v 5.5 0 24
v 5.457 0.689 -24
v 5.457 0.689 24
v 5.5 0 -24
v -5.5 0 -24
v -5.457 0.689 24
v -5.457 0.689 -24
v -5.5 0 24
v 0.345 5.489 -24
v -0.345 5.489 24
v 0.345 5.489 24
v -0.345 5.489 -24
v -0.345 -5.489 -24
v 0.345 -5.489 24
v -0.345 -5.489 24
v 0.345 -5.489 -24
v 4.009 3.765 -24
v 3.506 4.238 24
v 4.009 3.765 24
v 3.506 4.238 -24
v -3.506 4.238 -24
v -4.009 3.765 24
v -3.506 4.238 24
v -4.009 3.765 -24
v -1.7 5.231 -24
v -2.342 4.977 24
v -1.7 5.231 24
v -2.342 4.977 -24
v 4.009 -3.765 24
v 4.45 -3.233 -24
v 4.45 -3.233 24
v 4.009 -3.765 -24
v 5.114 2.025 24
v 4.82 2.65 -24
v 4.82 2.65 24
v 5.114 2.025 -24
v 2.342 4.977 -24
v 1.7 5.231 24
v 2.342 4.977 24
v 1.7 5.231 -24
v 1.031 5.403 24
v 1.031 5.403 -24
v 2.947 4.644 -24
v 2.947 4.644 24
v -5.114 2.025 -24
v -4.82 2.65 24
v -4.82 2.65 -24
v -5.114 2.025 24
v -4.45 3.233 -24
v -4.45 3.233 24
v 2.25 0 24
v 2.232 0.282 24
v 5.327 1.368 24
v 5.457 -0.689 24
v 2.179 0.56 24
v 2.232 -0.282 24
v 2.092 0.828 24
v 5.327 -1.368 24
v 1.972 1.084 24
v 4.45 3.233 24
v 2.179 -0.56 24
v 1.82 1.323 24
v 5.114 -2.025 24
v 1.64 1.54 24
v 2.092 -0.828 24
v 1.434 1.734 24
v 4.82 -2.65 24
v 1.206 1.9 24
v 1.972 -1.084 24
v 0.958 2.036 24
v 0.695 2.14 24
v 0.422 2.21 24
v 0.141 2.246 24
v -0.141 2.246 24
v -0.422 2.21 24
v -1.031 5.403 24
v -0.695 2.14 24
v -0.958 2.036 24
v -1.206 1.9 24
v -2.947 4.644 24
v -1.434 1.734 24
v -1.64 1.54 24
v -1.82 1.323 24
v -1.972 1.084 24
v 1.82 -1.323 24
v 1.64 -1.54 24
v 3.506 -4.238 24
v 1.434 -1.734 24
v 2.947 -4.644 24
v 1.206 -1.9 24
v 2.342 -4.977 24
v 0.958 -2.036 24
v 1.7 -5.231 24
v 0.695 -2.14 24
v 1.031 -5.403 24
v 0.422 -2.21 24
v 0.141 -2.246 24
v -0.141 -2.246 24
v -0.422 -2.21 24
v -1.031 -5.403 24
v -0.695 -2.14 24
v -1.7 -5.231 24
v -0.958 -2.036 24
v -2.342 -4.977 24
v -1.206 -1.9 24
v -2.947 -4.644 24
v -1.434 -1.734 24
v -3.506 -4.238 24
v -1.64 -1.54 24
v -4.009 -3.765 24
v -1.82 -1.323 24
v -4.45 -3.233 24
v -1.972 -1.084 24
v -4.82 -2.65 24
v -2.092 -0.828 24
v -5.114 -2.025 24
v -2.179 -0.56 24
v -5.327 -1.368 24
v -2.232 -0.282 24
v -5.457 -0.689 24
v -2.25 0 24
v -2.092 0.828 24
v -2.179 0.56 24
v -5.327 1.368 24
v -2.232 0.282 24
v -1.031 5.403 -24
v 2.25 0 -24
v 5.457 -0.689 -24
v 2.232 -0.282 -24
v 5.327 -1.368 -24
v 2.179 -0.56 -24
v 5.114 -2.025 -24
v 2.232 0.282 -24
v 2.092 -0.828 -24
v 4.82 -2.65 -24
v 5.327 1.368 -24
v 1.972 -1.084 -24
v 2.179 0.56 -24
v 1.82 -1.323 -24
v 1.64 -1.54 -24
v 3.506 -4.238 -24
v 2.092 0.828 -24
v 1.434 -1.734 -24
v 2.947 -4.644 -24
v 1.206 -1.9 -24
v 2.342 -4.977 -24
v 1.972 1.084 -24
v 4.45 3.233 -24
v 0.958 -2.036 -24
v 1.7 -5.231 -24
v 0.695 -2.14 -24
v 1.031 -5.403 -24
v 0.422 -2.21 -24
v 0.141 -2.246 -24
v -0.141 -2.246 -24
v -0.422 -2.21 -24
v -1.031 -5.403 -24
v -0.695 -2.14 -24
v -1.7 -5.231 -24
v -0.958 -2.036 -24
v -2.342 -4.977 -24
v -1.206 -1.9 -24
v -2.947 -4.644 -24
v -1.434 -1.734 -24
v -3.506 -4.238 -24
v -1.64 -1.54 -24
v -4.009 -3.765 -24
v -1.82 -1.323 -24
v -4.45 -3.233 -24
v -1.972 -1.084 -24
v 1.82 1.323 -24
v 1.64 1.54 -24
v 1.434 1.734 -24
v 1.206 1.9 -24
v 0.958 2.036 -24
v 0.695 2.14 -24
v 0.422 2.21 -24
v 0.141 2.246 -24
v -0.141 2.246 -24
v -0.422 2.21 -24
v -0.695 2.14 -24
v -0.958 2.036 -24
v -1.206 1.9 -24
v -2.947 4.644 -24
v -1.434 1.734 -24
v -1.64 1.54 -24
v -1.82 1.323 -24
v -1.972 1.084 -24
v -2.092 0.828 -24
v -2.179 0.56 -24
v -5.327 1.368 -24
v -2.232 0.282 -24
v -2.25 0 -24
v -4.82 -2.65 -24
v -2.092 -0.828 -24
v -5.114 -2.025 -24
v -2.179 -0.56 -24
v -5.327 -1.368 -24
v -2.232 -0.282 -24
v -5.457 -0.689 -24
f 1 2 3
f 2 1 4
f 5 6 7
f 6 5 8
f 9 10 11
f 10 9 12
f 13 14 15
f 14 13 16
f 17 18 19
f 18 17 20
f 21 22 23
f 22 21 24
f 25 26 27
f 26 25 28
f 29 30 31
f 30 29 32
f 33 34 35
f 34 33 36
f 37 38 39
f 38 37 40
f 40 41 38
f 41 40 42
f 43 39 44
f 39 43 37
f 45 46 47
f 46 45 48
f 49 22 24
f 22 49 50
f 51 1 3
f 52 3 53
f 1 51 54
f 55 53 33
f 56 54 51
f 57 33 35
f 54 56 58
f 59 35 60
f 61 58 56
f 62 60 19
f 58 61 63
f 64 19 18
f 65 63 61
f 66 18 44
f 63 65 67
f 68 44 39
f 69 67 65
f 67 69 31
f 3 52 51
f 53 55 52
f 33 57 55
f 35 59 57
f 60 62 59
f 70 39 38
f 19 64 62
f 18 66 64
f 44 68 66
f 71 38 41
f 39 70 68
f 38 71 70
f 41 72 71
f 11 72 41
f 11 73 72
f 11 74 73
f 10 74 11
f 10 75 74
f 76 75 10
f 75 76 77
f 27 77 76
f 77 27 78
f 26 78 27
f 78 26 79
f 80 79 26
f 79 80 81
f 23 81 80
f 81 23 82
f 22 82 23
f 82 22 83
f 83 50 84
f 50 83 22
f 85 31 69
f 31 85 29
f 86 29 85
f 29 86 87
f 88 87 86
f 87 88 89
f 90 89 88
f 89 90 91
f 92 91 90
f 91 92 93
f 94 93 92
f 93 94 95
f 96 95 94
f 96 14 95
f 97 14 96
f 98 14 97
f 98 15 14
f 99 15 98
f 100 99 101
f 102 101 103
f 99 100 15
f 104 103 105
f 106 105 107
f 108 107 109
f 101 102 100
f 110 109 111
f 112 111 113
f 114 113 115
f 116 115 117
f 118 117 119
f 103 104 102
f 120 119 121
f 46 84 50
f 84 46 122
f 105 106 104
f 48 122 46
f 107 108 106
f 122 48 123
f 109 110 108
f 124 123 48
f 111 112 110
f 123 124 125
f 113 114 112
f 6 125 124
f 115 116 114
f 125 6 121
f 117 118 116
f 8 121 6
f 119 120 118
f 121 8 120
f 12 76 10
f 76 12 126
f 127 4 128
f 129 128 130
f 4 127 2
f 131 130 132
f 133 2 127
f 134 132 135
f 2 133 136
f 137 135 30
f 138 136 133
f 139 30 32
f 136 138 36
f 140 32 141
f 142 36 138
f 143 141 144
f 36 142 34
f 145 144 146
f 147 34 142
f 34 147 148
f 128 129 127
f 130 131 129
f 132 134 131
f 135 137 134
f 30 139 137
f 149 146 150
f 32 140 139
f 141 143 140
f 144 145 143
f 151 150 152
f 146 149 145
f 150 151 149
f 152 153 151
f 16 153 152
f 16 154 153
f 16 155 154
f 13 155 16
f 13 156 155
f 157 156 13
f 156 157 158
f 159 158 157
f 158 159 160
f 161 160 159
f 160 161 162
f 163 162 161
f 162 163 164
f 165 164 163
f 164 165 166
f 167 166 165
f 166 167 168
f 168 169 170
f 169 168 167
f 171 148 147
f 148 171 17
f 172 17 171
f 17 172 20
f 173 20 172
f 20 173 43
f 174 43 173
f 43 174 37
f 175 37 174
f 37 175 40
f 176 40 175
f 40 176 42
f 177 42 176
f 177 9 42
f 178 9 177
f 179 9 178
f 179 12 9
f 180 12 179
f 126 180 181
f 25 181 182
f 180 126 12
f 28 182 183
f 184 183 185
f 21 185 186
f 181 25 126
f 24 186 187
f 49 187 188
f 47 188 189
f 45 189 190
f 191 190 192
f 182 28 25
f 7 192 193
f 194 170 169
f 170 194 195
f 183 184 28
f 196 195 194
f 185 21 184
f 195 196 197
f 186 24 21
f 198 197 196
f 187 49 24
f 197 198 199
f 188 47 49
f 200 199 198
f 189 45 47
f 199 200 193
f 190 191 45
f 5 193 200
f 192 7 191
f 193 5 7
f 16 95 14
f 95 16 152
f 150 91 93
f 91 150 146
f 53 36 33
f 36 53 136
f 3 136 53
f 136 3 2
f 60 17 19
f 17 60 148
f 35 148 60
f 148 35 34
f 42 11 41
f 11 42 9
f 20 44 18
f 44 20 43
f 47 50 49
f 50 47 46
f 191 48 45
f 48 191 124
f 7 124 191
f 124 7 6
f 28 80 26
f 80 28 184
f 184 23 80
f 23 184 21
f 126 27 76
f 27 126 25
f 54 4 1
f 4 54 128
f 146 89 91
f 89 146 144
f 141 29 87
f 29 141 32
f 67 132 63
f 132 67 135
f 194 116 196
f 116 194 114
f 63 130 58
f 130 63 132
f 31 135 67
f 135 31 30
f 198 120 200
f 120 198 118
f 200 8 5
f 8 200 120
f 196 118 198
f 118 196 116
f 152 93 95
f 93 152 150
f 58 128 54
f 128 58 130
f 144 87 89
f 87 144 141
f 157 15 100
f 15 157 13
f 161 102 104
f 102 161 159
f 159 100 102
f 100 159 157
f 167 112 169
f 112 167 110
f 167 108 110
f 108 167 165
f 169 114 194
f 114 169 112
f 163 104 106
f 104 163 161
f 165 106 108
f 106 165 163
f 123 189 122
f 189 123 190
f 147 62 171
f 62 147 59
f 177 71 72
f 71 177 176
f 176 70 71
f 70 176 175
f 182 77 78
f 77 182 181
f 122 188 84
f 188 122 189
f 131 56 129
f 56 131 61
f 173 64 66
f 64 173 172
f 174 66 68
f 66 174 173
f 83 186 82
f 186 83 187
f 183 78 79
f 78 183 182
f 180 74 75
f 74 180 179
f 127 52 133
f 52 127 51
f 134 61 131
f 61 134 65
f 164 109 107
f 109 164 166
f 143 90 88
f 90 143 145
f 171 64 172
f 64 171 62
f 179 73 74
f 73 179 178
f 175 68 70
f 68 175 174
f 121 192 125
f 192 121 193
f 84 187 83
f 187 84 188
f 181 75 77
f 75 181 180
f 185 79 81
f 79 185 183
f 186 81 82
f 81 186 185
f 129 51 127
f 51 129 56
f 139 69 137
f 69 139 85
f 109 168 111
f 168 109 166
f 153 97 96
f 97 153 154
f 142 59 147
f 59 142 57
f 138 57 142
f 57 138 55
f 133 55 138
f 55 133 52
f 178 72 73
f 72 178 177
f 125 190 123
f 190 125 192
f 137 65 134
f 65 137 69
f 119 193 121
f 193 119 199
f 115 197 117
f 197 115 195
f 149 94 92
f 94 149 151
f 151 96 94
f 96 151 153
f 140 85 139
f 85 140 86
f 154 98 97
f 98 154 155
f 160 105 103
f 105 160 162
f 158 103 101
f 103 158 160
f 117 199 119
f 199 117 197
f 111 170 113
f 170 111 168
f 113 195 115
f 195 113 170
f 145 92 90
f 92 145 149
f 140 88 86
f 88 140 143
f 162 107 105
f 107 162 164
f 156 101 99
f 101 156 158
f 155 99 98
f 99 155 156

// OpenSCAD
$fn = 50;


difference() {
	union() {
		translate(v = [0, 0, -24.0000000000]) {
			cylinder(h = 48, r = 5.5000000000);
		}
	}
	union() {
		translate(v = [0, 0, -100.0000000000]) {
			cylinder(h = 200, r = 2.2500000000);
		}
	}
}
